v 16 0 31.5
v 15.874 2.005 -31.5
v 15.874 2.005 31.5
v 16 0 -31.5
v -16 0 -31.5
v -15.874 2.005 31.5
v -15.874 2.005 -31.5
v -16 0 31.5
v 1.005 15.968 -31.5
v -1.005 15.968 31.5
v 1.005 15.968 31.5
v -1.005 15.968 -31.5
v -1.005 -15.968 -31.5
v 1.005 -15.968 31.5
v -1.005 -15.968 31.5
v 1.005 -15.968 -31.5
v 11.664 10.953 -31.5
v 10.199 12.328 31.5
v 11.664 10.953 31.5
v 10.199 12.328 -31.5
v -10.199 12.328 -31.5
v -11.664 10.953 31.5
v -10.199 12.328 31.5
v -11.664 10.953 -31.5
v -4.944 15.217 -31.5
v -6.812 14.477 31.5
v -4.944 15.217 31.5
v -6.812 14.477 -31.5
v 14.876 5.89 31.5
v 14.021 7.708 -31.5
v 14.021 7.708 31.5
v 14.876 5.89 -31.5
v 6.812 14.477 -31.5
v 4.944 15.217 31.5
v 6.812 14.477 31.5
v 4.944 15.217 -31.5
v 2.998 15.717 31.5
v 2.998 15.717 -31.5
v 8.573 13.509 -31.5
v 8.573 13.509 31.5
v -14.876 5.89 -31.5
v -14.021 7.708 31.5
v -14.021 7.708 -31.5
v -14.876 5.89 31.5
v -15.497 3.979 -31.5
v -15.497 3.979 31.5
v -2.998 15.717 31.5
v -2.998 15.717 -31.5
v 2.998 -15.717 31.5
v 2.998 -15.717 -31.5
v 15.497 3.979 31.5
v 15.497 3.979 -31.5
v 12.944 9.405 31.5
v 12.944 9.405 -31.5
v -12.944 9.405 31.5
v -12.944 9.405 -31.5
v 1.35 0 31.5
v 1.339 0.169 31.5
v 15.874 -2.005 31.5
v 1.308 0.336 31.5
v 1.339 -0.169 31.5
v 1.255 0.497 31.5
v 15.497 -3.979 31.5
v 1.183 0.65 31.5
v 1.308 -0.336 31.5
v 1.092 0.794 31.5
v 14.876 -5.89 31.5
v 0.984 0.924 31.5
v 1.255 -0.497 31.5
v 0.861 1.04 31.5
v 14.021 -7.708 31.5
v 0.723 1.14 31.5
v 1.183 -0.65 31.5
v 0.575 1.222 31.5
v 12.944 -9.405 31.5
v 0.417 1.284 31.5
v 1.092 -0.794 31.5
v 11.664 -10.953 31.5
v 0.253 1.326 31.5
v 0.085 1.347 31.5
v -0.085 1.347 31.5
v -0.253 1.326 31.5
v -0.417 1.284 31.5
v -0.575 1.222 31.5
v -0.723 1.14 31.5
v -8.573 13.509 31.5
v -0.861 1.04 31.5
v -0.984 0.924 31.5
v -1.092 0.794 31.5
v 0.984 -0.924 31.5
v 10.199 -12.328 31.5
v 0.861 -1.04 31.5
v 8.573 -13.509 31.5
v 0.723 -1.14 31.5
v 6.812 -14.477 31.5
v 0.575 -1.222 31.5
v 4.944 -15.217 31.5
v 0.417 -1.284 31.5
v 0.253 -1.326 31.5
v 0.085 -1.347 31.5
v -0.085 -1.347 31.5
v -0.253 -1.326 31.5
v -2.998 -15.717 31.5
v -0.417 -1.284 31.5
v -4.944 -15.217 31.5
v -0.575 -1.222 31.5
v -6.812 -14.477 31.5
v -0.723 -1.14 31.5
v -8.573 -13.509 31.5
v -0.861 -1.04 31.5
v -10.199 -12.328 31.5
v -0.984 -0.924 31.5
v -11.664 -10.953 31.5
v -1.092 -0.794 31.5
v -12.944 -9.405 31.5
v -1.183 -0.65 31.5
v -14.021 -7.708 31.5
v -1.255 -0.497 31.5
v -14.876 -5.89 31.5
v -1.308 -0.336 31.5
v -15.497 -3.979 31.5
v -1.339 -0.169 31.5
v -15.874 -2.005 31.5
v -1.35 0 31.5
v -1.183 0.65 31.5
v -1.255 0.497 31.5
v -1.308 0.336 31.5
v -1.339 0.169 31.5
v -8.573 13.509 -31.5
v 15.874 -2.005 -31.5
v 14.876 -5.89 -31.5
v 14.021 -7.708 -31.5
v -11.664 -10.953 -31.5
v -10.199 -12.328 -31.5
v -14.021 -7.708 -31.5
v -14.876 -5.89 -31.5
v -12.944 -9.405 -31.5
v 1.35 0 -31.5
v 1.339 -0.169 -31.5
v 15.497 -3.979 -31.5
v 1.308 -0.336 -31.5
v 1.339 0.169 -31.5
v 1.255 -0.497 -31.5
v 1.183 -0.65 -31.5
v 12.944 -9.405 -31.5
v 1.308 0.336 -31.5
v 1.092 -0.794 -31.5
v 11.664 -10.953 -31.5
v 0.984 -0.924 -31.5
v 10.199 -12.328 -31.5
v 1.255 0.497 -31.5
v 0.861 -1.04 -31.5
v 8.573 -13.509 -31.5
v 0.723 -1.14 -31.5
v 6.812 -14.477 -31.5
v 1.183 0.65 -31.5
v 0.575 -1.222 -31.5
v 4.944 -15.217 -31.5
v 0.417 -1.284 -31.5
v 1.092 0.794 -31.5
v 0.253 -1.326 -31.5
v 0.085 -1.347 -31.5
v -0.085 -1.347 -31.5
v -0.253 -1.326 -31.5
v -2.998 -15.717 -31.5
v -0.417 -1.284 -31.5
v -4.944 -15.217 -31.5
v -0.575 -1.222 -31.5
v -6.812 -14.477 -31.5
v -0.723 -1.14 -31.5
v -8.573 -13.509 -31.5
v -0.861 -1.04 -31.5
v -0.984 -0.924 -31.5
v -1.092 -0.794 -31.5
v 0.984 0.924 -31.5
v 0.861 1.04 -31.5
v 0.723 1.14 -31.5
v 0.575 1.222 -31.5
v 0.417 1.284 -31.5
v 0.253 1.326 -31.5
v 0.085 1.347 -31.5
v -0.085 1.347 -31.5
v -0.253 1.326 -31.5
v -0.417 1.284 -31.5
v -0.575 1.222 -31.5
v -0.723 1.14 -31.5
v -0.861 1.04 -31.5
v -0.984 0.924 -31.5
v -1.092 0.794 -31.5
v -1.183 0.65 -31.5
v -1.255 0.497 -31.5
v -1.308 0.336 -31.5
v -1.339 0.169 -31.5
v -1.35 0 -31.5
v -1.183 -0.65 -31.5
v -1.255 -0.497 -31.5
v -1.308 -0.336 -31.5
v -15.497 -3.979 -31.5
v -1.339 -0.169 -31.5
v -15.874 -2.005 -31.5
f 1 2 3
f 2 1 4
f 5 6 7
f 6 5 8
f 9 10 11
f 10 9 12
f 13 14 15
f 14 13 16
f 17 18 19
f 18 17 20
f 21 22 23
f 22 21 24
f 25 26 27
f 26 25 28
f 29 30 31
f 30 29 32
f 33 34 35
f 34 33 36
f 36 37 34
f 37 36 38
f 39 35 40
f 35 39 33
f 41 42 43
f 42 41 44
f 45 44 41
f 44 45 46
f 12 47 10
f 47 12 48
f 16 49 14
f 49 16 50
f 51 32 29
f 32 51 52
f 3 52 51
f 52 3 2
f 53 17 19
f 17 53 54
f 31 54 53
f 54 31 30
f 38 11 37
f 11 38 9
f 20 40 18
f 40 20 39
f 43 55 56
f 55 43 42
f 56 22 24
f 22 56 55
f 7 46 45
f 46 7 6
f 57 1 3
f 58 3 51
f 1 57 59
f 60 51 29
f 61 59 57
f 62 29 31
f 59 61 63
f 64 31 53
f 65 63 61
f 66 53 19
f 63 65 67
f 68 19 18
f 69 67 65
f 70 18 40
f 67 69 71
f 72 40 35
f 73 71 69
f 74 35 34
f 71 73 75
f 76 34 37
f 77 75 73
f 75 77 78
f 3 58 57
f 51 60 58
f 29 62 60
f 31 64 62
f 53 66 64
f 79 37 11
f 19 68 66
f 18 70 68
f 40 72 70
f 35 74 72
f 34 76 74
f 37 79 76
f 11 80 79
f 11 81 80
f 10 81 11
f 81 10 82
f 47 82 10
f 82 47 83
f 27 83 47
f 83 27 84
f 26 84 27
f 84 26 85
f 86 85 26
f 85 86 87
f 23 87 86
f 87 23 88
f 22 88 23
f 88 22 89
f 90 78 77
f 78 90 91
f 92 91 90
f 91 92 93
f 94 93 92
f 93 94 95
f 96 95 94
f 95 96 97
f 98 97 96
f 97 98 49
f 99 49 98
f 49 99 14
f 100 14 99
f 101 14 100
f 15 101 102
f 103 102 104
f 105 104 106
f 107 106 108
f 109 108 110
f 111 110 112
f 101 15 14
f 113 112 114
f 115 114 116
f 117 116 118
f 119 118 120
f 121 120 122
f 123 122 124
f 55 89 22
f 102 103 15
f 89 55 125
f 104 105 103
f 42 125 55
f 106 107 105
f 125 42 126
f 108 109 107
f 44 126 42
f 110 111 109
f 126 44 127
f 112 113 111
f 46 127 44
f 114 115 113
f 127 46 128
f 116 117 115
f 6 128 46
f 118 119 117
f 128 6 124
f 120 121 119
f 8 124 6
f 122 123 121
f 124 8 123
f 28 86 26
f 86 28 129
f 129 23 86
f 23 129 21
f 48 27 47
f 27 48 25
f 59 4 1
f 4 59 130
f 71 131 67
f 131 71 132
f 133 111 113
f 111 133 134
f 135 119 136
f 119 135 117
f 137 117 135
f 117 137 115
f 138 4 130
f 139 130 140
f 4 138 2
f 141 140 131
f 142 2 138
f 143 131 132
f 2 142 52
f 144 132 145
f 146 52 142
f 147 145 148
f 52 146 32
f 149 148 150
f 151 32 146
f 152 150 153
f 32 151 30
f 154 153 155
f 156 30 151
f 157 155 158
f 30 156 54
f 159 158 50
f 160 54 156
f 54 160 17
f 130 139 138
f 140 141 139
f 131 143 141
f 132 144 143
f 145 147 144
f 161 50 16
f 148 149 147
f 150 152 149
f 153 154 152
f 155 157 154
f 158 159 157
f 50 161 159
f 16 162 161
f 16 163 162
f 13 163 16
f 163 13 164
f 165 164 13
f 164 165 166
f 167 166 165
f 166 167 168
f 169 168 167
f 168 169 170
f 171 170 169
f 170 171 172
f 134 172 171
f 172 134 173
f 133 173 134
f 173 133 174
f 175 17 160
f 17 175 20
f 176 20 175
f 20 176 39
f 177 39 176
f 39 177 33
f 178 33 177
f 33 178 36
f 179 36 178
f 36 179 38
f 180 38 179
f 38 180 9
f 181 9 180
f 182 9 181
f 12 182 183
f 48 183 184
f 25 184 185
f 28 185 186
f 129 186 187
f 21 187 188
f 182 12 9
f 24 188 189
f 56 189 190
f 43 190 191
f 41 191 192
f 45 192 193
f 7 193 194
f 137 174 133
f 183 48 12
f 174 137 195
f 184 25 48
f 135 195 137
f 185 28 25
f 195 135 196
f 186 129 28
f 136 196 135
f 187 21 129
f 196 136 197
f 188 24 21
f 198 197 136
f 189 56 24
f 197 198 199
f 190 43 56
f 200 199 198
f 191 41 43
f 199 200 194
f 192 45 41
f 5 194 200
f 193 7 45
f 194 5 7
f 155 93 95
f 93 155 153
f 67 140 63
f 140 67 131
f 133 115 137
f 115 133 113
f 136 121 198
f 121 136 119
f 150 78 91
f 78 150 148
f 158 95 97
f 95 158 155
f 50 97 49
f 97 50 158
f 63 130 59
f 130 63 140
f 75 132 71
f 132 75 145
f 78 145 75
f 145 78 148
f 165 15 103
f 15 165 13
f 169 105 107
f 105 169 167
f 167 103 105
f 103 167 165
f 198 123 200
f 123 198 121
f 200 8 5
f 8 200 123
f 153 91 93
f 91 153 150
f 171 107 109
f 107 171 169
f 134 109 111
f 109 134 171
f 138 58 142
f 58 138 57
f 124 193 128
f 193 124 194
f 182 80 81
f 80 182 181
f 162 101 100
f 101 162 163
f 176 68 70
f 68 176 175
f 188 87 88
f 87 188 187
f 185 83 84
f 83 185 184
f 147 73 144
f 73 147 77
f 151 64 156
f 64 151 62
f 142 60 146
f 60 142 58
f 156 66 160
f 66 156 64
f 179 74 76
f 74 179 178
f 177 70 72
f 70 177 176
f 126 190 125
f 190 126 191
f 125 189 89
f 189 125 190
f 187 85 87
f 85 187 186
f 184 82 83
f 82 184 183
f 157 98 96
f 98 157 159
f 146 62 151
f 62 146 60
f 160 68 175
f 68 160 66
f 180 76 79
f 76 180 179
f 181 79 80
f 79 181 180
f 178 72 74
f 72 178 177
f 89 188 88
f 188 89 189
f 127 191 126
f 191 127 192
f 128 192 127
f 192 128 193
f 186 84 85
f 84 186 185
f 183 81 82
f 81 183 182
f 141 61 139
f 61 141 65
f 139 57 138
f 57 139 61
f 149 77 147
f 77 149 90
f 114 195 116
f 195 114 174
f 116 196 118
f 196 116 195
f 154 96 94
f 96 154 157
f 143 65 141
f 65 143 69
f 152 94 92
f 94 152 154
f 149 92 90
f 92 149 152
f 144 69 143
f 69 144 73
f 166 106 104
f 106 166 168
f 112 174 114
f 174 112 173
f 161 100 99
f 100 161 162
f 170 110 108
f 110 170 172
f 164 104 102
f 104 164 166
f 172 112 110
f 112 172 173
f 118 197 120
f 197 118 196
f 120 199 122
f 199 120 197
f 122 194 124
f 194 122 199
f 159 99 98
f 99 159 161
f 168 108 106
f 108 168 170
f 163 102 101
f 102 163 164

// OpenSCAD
$fn = 50;


difference() {
	union() {
		translate(v = [0, 0, -31.5000000000]) {
			cylinder(h = 63, r = 16.0000000000);
		}
	}
	union() {
		translate(v = [0, 0, -100.0000000000]) {
			cylinder(h = 200, r = 1.3500000000);
		}
	}
}
